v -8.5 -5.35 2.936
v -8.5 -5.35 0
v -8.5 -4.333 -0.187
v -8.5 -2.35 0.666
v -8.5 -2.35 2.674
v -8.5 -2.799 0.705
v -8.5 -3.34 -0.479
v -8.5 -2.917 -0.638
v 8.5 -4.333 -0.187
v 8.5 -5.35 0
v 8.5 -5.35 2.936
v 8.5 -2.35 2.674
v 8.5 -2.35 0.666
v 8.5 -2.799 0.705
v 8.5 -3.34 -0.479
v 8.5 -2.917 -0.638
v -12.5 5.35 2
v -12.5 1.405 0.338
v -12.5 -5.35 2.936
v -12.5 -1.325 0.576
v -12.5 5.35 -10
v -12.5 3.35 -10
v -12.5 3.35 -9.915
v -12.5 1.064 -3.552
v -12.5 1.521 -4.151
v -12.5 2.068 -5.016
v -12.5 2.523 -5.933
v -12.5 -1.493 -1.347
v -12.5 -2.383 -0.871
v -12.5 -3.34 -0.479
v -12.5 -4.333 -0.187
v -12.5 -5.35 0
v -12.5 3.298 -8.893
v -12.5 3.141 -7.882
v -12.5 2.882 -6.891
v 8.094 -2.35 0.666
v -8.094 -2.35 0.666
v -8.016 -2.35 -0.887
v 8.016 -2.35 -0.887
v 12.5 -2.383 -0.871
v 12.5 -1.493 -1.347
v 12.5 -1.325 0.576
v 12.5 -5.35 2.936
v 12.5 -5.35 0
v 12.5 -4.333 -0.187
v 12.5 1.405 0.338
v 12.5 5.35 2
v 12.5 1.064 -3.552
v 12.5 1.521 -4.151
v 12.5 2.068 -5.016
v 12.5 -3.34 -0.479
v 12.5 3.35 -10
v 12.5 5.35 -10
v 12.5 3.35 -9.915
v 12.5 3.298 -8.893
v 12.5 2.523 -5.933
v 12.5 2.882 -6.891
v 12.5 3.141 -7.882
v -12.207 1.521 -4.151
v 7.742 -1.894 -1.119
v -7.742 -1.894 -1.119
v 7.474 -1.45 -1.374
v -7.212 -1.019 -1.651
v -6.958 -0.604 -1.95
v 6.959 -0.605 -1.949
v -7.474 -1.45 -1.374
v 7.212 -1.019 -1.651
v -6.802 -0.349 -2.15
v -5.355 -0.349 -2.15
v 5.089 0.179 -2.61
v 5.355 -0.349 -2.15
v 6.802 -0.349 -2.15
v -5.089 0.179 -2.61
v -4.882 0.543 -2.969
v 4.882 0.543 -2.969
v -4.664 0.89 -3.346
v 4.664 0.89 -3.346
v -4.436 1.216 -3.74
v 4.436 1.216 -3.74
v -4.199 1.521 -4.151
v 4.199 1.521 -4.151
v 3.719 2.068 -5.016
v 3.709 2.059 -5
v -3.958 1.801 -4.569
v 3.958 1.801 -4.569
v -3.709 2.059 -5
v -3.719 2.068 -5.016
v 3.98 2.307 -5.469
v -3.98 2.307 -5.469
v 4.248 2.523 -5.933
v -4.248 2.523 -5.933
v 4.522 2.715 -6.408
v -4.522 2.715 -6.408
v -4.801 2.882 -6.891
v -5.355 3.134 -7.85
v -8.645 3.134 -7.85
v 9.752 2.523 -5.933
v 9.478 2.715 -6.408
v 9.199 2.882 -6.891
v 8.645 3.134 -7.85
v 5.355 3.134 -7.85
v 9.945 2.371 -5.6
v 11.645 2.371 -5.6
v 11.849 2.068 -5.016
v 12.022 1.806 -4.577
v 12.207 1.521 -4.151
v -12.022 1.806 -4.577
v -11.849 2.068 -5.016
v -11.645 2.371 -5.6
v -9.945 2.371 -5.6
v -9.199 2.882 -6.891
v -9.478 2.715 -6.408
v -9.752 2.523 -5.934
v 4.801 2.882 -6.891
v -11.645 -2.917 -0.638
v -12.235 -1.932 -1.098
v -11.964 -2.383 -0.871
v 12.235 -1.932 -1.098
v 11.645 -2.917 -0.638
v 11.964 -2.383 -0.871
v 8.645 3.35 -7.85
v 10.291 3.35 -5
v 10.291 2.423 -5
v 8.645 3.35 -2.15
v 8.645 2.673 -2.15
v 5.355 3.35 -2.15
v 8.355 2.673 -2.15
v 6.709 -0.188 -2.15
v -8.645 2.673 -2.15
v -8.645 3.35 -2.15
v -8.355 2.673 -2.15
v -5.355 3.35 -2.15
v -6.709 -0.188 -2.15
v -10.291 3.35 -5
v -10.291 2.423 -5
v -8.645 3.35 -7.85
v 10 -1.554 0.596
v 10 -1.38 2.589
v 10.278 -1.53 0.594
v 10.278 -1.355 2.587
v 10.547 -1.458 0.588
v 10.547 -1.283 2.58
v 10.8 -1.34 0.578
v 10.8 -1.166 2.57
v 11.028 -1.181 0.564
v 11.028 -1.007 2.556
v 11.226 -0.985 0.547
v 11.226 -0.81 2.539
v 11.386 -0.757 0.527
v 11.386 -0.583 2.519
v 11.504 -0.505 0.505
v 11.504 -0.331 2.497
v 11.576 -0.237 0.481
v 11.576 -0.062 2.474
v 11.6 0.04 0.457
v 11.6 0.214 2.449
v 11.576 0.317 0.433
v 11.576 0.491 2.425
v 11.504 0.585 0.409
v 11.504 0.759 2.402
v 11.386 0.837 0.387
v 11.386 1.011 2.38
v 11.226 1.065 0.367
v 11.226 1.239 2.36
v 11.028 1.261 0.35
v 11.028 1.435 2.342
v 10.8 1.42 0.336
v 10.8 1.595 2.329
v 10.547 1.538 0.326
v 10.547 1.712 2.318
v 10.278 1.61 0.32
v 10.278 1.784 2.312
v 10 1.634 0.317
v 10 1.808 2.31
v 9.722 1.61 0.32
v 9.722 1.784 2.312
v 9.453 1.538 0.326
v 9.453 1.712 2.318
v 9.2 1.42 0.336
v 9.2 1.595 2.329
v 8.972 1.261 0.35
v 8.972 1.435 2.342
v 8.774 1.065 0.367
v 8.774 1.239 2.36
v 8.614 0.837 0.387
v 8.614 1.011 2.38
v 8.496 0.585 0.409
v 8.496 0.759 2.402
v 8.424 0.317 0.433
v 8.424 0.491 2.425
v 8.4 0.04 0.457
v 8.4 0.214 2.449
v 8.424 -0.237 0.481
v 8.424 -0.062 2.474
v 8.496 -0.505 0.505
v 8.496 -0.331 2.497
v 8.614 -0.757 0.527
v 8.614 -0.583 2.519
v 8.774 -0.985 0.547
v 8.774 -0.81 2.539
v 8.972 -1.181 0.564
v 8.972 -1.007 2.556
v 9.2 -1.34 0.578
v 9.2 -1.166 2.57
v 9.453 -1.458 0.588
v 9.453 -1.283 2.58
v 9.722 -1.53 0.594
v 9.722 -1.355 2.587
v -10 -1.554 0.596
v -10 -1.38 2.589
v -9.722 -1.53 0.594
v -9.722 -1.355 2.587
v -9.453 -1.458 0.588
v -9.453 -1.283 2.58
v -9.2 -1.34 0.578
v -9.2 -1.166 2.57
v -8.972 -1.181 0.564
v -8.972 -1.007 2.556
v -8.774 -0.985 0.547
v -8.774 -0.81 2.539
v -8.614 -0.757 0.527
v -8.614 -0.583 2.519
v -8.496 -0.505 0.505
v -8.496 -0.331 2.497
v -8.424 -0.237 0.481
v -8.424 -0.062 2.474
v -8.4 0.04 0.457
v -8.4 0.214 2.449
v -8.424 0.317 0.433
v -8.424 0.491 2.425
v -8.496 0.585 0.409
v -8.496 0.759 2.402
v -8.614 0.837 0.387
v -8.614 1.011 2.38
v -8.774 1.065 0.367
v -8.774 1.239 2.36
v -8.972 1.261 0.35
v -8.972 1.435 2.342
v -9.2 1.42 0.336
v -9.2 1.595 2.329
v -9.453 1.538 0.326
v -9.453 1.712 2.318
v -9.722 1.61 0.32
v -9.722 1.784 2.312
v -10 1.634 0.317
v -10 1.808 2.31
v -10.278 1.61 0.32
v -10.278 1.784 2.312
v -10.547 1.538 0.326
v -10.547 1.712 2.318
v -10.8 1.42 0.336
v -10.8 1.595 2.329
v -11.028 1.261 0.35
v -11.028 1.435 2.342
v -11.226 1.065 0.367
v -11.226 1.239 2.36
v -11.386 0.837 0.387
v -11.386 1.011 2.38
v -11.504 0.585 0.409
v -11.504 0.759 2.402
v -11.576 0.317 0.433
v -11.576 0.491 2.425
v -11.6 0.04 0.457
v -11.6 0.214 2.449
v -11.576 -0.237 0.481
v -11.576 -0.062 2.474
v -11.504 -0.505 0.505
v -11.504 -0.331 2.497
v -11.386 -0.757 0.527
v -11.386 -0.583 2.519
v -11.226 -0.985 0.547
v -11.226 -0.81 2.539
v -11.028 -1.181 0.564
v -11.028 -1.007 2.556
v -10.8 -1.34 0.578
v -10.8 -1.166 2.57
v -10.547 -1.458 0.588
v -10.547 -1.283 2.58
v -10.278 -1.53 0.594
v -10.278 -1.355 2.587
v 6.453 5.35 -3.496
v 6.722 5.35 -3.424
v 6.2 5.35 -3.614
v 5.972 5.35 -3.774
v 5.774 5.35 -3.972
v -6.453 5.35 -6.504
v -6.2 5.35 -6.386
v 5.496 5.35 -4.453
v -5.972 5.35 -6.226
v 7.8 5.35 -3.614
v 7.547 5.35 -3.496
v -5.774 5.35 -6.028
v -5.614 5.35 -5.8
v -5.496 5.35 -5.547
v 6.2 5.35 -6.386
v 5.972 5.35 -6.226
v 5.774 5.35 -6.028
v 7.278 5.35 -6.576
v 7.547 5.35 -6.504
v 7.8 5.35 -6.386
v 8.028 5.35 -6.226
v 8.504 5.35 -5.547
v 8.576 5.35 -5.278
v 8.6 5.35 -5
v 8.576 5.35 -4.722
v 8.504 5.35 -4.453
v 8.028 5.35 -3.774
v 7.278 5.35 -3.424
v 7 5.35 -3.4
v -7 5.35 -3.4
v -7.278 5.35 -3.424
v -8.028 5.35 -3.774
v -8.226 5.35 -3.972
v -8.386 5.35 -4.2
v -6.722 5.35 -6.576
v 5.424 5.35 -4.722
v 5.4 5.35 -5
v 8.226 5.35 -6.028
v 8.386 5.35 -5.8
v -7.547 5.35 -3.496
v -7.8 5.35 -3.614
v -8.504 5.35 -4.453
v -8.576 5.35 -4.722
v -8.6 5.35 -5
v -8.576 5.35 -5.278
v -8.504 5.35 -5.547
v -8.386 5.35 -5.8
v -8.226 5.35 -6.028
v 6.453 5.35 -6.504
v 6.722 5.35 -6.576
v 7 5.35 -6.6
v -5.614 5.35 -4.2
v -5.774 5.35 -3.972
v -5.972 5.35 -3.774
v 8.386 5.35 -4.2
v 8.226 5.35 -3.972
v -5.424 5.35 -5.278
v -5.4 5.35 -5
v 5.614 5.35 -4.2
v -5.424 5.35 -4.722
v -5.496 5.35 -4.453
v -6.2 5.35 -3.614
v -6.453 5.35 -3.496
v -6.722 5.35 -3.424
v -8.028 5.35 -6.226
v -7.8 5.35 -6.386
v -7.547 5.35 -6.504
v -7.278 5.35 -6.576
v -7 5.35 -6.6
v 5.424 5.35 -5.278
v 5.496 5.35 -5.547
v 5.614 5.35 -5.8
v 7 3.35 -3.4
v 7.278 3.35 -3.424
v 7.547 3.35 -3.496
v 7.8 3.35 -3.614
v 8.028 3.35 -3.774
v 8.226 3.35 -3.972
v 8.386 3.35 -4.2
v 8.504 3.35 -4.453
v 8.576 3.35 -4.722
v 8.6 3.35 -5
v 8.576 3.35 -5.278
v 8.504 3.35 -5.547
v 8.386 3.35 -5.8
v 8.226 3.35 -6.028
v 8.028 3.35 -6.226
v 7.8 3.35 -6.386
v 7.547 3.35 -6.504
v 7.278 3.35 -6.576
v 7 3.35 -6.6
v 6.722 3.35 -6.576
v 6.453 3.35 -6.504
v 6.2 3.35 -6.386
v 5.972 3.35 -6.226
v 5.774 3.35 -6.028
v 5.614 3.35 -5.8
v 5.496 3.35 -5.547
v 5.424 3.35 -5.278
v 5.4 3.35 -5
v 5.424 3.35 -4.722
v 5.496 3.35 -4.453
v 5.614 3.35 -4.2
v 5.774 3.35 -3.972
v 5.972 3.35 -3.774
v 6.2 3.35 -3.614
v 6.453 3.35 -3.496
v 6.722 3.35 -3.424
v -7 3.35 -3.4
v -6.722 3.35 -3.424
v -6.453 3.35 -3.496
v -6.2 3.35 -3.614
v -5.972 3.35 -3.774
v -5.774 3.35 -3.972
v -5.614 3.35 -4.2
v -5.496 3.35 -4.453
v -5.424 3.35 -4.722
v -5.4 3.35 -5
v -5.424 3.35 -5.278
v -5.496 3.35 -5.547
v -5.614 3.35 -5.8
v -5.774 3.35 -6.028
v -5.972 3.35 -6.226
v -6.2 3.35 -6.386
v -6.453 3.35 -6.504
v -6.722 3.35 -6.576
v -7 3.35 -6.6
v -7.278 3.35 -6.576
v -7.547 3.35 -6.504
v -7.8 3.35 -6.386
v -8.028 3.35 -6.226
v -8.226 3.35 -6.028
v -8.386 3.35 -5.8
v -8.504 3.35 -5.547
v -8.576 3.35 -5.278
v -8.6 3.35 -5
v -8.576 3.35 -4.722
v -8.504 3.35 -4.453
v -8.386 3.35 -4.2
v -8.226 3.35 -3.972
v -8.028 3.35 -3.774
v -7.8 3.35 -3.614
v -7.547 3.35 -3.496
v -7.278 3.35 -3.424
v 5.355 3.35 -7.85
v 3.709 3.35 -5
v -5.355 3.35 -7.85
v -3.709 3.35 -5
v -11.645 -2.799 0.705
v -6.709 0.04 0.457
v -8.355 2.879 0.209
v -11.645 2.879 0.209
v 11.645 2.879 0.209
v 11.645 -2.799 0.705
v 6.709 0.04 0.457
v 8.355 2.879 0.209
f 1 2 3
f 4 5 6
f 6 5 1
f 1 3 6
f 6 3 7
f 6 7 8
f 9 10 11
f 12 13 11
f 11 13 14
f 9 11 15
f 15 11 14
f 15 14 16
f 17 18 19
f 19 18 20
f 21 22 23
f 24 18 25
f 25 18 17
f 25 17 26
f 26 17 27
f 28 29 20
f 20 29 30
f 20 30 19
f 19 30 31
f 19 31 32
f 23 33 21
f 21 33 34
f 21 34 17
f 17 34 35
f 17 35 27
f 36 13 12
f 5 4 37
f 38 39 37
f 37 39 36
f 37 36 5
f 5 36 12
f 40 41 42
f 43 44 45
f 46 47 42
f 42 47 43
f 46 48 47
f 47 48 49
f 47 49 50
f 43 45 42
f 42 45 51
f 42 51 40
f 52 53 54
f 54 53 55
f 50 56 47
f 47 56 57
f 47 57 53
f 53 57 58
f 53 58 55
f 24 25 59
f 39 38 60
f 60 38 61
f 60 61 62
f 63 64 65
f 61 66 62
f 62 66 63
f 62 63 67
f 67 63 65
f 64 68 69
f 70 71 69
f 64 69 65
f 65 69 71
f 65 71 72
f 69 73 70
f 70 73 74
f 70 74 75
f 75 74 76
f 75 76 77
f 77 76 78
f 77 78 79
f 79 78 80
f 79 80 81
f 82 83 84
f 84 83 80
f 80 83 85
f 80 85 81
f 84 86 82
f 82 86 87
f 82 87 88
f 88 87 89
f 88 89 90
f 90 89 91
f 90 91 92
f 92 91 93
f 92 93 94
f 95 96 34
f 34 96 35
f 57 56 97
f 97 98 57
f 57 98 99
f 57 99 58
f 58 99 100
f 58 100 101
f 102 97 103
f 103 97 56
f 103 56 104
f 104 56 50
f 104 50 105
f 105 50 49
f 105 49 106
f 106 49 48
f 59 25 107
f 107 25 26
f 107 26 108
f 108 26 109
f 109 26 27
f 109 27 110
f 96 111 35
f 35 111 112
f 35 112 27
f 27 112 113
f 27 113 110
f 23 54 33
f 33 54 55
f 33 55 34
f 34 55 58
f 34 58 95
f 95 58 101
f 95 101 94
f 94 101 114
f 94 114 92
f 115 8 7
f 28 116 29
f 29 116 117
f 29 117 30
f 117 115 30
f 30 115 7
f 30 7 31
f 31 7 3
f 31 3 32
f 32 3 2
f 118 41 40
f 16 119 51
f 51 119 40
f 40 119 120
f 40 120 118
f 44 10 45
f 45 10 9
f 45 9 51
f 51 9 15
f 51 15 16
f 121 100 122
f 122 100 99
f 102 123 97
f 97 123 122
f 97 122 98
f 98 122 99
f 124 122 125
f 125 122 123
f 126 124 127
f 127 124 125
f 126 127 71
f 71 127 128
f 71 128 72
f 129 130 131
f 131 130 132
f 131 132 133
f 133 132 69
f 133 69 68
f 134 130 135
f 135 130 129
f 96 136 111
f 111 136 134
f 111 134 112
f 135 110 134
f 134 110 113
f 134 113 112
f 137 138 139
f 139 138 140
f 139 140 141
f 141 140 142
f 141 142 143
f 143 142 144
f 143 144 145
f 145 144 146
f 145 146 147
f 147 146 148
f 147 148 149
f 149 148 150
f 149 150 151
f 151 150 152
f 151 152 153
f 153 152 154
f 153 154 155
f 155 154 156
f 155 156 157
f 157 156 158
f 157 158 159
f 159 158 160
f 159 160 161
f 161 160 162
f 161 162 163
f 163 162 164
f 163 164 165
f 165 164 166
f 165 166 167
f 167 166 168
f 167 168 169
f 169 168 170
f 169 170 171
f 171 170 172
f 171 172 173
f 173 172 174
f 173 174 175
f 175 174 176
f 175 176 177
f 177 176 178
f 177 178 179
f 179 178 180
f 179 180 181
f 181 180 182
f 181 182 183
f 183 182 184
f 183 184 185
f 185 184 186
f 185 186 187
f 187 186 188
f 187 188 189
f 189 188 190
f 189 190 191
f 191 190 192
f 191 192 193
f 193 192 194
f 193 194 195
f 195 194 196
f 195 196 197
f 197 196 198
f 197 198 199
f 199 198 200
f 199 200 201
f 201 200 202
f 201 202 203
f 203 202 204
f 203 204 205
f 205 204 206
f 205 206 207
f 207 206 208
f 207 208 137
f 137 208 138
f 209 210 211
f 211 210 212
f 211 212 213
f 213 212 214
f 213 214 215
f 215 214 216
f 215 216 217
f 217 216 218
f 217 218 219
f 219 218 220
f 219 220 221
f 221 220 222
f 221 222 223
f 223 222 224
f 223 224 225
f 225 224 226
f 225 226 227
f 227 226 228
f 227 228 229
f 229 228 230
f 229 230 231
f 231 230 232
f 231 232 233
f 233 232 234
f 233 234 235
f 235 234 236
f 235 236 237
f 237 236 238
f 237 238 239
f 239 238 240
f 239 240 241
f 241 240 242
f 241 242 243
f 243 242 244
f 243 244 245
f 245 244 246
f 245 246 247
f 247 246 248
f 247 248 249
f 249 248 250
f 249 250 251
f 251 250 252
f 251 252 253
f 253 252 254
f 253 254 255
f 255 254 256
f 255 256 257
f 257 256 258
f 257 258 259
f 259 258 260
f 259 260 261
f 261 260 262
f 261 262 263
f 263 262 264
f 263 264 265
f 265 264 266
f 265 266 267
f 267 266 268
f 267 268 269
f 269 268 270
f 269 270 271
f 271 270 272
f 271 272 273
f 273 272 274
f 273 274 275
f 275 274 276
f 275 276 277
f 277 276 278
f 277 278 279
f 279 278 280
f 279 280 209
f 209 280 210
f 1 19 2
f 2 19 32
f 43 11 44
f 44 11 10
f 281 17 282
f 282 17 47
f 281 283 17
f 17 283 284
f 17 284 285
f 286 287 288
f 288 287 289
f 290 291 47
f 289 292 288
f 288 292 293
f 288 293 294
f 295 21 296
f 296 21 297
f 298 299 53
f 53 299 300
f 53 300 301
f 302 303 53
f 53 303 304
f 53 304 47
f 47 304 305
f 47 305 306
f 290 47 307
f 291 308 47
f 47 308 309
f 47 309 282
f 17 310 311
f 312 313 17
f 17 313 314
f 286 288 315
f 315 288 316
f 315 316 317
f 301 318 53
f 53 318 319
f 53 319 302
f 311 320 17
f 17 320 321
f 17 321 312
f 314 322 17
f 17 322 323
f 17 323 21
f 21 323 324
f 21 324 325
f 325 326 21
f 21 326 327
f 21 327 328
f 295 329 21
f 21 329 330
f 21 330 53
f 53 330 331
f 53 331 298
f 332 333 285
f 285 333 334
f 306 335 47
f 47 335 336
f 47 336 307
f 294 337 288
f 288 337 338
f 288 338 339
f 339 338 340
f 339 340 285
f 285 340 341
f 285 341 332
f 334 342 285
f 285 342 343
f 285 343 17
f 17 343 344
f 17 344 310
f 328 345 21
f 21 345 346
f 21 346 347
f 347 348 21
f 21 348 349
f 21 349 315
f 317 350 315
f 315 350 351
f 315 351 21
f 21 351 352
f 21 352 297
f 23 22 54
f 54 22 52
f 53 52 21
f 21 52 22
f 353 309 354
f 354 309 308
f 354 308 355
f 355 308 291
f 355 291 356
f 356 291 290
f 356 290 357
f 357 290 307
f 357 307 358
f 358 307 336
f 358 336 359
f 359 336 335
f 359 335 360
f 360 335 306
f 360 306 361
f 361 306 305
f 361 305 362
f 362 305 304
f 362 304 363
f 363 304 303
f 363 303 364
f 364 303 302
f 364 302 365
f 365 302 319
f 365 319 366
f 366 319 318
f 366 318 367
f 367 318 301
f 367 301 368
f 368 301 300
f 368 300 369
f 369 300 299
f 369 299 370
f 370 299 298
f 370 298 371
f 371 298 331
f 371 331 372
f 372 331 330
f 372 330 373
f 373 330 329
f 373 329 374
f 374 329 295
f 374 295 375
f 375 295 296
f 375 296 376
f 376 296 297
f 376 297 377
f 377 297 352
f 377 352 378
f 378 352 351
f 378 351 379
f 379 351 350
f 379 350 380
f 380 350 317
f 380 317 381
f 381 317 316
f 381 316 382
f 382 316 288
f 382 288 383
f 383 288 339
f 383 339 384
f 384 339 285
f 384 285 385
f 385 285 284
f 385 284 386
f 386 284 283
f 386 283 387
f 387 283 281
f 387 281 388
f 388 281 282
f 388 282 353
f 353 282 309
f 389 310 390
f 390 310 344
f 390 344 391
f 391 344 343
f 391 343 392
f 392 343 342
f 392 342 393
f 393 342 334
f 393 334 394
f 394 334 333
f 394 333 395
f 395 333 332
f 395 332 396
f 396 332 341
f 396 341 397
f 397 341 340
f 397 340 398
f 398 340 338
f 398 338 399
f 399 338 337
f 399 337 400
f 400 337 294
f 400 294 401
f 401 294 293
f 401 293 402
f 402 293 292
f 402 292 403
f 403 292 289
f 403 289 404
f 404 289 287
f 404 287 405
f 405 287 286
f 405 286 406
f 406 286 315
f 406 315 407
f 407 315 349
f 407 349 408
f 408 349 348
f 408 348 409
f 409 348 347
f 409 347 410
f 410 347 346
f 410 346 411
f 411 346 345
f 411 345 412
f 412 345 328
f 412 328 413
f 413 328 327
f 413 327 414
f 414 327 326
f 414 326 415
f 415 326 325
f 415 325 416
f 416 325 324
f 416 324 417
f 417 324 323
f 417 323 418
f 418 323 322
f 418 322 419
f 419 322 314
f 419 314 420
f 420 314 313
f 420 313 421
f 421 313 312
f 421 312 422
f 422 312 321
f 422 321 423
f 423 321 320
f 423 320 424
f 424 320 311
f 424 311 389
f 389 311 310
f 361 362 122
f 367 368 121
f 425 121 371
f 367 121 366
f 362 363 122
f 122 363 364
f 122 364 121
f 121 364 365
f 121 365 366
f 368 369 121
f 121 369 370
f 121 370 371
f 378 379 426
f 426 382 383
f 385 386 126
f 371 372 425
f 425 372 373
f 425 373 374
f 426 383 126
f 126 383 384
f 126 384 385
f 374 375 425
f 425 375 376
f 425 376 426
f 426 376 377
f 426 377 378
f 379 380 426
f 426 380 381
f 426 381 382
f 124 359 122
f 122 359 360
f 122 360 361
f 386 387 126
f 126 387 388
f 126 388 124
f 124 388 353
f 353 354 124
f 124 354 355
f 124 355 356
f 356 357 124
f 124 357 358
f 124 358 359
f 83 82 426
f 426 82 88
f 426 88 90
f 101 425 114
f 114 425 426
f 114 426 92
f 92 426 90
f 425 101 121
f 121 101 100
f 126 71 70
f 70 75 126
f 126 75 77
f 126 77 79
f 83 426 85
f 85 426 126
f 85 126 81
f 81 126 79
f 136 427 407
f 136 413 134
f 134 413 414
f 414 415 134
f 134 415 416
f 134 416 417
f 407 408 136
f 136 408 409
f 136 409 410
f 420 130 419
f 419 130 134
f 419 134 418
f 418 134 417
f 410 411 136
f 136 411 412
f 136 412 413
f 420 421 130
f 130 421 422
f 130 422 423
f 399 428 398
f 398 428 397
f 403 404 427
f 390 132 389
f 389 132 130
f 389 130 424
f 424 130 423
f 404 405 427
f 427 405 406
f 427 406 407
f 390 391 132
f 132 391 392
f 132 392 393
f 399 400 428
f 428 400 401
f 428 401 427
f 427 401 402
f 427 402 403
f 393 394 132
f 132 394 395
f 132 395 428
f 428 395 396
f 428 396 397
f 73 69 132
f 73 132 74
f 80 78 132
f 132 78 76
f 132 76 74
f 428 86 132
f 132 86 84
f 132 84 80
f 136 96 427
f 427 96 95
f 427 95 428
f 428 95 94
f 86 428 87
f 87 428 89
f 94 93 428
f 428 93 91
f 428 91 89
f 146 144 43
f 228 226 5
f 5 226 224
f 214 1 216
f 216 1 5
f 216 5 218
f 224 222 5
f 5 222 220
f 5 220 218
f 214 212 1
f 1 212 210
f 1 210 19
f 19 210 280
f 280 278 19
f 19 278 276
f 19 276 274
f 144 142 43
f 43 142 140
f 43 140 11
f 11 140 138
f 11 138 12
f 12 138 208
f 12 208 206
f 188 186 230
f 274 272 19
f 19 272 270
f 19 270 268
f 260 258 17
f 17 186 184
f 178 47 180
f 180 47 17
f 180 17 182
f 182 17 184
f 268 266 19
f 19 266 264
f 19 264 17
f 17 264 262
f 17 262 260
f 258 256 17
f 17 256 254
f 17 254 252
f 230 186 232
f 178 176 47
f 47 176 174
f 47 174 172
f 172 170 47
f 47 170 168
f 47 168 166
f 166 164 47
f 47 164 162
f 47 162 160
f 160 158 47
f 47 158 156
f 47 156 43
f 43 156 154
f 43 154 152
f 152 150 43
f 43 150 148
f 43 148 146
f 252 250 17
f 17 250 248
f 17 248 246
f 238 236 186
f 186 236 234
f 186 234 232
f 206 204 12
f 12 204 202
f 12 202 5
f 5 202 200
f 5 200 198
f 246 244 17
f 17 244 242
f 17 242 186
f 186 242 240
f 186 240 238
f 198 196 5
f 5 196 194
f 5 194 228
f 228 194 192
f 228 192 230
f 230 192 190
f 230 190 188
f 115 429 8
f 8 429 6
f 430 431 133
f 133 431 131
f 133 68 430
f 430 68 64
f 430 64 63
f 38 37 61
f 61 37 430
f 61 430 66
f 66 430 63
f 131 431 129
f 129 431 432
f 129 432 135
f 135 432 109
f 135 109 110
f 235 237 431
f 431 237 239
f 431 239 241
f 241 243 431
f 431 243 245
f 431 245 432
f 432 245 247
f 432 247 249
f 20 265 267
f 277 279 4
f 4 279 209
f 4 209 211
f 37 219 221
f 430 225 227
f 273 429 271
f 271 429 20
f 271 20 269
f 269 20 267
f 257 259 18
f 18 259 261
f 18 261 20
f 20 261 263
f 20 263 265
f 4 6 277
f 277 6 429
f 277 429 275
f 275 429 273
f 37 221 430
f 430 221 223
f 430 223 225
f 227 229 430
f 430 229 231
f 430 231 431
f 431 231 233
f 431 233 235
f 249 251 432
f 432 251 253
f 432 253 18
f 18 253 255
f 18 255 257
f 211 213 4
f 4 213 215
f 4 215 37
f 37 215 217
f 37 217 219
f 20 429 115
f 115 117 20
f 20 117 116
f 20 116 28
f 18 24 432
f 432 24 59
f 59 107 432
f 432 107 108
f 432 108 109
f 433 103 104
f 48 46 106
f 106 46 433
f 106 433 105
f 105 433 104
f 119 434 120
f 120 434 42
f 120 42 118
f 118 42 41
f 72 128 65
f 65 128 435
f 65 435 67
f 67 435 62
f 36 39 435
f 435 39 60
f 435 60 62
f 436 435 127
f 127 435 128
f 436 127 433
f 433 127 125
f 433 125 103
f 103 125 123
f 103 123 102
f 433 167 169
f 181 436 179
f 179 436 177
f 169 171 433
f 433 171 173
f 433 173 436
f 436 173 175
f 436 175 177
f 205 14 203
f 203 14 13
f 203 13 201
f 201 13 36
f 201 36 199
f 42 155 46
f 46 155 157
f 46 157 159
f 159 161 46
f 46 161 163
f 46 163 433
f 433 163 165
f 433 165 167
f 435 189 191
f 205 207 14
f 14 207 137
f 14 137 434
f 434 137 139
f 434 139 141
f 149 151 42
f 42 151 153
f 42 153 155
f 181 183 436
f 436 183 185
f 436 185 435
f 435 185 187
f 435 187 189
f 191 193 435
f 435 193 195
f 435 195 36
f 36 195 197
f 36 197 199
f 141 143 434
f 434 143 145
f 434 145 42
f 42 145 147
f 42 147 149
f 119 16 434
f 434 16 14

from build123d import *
from build123d.topology import SkipClean

# Parameters (mm, degrees)
BOSS_EXTRUDE1_DEPTH = 2
SKETCH2_W           = 25
SKETCH2_H           = 2
BOSS_EXTRUDE2_DEPTH = 10
SKETCH3_R           = 1.6
CUT_EXTRUDE1_DEPTH  = 10
FILLET5_START       = -12.5
FILLET5_DEPTH       = 25
FILLET5_2_DEPTH     = 4
FILLET5_START_2     = 8.5
FILLET5_3_DEPTH     = 4
FILLET5_4_OUTLINE_R = 1.6
FILLET5_4_DEPTH     = 3.35
CUT_EXTRUDE3_DEPTH  = 10
BOSS_EXTRUDE3_DEPTH = 4
BOSS_EXTRUDE4_START = -21
BOSS_EXTRUDE4_DEPTH = 4
BOSS_EXTRUDE5_REACH = 25.867
SKETCH9_R           = 1.6
CUT_EXTRUDE5_DEPTH  = 10
CUT_EXTRUDE4_START  = 2
CUT_EXTRUDE4_DEPTH  = 10


with BuildPart() as part:
    # Sketch1 → Boss-Extrude1 (new body)
    with BuildSketch(Plane.XY):
        Polygon((8.5, -5.35), (12.5, -5.35), (12.5, 5.35), (-12.5, 5.35), (-12.5, -5.35), (-8.5, -5.35), (-8.5, -2.35), (8.5, -2.35), align=None)
    extrude(amount=BOSS_EXTRUDE1_DEPTH)

    # Sketch2 → Boss-Extrude2 (add)
    with BuildSketch(Plane(origin=(0, 0, 0), x_dir=(-1, 0, 0), z_dir=(0, 0, -1))):
        with Locations((0, 4.35)):
            Rectangle(SKETCH2_W, SKETCH2_H)
    extrude(amount=BOSS_EXTRUDE2_DEPTH)

    # Sketch3 → Cut-Extrude1 (cut)
    with BuildSketch(Plane(origin=(0, 5.35, 0), x_dir=(1, 0, 0), z_dir=(0, 1, 0))):
        with Locations(Location((-7, 5, 0), (0, 0, 270))):
            Circle(SKETCH3_R)
        with Locations(Location((7, 5, 0), (0, 0, 270))):
            Circle(SKETCH3_R)
    extrude(amount=-CUT_EXTRUDE1_DEPTH, mode=Mode.SUBTRACT)

    # Fillet5: read off the stored shape, not the designer's step
    # Fillet5 outline → Fillet5 (add)
    with BuildSketch(Plane.YZ.offset(FILLET5_START)):
        with BuildLine():
            Line((-2.35, 0), (-2.35, -0.886851064))
            ThreePointArc((-2.35, -0.886851064), (1.805767263, -4.576600812), (3.35, -9.915139938))
            Line((3.35, -9.915139938), (3.35, 0))
            Line((3.35, 0), (-2.35, 0))
        make_face()
    extrude(amount=FILLET5_DEPTH)

    # Fillet5 2 outline → Fillet5 2 (add)
    with BuildSketch(Plane.YZ.offset(FILLET5_START)):
        with BuildLine():
            ThreePointArc((-5.35, 0), (-3.81510561, -0.325386355), (-2.35, -0.886851064))
            Line((-2.35, -0.886851064), (-2.35, 0))
            Line((-2.35, 0), (-5.35, 0))
        make_face()
    extrude(amount=FILLET5_2_DEPTH)

    # Fillet5 3 outline → Fillet5 3 (add)
    with BuildSketch(Plane.YZ.offset(FILLET5_START_2)):
        with BuildLine():
            ThreePointArc((-5.35, 0), (-3.81510561, -0.325386355), (-2.35, -0.886851064))
            Line((-2.35, -0.886851064), (-2.35, 0))
            Line((-2.35, 0), (-5.35, 0))
        make_face()
    extrude(amount=FILLET5_3_DEPTH)

    # Fillet5 4 outline → Fillet5 4 (cut)
    with SkipClean():  # the faces are left unmerged after this step: merging them gives an invalid solid
        with BuildSketch(Plane(origin=(0, 0, 0), x_dir=(1, 0, 0), z_dir=(0, 1, 0))):
            with Locations((7, 5)):
                Circle(FILLET5_4_OUTLINE_R)
            with Locations((-7, 5)):
                Circle(FILLET5_4_OUTLINE_R)
        extrude(amount=FILLET5_4_DEPTH, mode=Mode.SUBTRACT)

    # Sketch4 → Cut-Extrude3 (cut)
    with BuildSketch(Plane(origin=(0, 3.35, 0), x_dir=(1, 0, 0), z_dir=(0, 1, 0))):
        Polygon((-3.709103466, 5), (-5.354551733, 7.85), (-8.645448267, 7.85), (-10.290896534, 5), (-8.645448267, 2.15), (-5.354551733, 2.15), align=None)
        Polygon((3.709103466, 5), (5.354551733, 2.15), (8.645448267, 2.15), (10.290896534, 5), (8.645448267, 7.85), (5.354551733, 7.85), align=None)
    extrude(amount=-CUT_EXTRUDE3_DEPTH, mode=Mode.SUBTRACT)

    # Sketch7 → Boss-Extrude3 (add)
    with BuildSketch(Plane.ZY.offset(12.5)):
        Polygon((2, -5.35), (2.9361287, -5.35), (2, 5.35), align=None)
    extrude(amount=-BOSS_EXTRUDE3_DEPTH)

    # Sketch7<2> → Boss-Extrude4 (add)
    with BuildSketch(Plane.ZY.offset(12.5).offset(BOSS_EXTRUDE4_START)):
        Polygon((2, -5.35), (2.9361287, -5.35), (2, 5.35), align=None)
    extrude(amount=-BOSS_EXTRUDE4_DEPTH)

    # Sketch10 → Boss-Extrude5 (add, up to next)
    with BuildSketch(Plane.ZY.offset(-8.5), mode=Mode.PRIVATE) as boss_extrude5_sk1:
        Polygon((2, -2.35), (2.673662709, -2.35), (2, 5.35), align=None)
    boss_extrude5_tool1 = extrude(boss_extrude5_sk1.sketch, amount=BOSS_EXTRUDE5_REACH, mode=Mode.PRIVATE) - part.part
    add(boss_extrude5_tool1.solids().sort_by_distance((8.5, 0.216667, 2.224554))[0])

    # Sketch9 → Cut-Extrude5 (cut)
    with BuildSketch(Plane(origin=(0, 0.214287438, 2.449316628), x_dir=(1, 0, 0), z_dir=(0, 0.08715574274766177, 0.9961946980917453))):
        with Locations(Location((-10, 0, 0), (0, 0, 270))):
            Circle(SKETCH9_R)
        with Locations(Location((10, 0, 0), (0, 0, 270))):
            Circle(SKETCH9_R)
    extrude(amount=-CUT_EXTRUDE5_DEPTH, mode=Mode.SUBTRACT)

    # Sketch6 → Cut-Extrude4 (cut)
    with BuildSketch(Plane(origin=(0, 10.679641635, 1.533716776), x_dir=(1, 0, 0), z_dir=(0, -0.08715574274766179, -0.9961946980917453)).offset(CUT_EXTRUDE4_START)):
        Polygon((-6.709103466, 10.505330149), (-8.354551733, 13.355330149), (-11.645448267, 13.355330149), (-13.290896534, 10.505330149), (-11.645448267, 7.655330149), (-8.354551733, 7.655330149), align=None)
        Polygon((6.709103466, 10.505330149), (8.354551733, 7.655330149), (11.645448267, 7.655330149), (13.290896534, 10.505330149), (11.645448267, 13.355330149), (8.354551733, 13.355330149), align=None)
    extrude(amount=CUT_EXTRUDE4_DEPTH, mode=Mode.SUBTRACT)


solid = part.part
